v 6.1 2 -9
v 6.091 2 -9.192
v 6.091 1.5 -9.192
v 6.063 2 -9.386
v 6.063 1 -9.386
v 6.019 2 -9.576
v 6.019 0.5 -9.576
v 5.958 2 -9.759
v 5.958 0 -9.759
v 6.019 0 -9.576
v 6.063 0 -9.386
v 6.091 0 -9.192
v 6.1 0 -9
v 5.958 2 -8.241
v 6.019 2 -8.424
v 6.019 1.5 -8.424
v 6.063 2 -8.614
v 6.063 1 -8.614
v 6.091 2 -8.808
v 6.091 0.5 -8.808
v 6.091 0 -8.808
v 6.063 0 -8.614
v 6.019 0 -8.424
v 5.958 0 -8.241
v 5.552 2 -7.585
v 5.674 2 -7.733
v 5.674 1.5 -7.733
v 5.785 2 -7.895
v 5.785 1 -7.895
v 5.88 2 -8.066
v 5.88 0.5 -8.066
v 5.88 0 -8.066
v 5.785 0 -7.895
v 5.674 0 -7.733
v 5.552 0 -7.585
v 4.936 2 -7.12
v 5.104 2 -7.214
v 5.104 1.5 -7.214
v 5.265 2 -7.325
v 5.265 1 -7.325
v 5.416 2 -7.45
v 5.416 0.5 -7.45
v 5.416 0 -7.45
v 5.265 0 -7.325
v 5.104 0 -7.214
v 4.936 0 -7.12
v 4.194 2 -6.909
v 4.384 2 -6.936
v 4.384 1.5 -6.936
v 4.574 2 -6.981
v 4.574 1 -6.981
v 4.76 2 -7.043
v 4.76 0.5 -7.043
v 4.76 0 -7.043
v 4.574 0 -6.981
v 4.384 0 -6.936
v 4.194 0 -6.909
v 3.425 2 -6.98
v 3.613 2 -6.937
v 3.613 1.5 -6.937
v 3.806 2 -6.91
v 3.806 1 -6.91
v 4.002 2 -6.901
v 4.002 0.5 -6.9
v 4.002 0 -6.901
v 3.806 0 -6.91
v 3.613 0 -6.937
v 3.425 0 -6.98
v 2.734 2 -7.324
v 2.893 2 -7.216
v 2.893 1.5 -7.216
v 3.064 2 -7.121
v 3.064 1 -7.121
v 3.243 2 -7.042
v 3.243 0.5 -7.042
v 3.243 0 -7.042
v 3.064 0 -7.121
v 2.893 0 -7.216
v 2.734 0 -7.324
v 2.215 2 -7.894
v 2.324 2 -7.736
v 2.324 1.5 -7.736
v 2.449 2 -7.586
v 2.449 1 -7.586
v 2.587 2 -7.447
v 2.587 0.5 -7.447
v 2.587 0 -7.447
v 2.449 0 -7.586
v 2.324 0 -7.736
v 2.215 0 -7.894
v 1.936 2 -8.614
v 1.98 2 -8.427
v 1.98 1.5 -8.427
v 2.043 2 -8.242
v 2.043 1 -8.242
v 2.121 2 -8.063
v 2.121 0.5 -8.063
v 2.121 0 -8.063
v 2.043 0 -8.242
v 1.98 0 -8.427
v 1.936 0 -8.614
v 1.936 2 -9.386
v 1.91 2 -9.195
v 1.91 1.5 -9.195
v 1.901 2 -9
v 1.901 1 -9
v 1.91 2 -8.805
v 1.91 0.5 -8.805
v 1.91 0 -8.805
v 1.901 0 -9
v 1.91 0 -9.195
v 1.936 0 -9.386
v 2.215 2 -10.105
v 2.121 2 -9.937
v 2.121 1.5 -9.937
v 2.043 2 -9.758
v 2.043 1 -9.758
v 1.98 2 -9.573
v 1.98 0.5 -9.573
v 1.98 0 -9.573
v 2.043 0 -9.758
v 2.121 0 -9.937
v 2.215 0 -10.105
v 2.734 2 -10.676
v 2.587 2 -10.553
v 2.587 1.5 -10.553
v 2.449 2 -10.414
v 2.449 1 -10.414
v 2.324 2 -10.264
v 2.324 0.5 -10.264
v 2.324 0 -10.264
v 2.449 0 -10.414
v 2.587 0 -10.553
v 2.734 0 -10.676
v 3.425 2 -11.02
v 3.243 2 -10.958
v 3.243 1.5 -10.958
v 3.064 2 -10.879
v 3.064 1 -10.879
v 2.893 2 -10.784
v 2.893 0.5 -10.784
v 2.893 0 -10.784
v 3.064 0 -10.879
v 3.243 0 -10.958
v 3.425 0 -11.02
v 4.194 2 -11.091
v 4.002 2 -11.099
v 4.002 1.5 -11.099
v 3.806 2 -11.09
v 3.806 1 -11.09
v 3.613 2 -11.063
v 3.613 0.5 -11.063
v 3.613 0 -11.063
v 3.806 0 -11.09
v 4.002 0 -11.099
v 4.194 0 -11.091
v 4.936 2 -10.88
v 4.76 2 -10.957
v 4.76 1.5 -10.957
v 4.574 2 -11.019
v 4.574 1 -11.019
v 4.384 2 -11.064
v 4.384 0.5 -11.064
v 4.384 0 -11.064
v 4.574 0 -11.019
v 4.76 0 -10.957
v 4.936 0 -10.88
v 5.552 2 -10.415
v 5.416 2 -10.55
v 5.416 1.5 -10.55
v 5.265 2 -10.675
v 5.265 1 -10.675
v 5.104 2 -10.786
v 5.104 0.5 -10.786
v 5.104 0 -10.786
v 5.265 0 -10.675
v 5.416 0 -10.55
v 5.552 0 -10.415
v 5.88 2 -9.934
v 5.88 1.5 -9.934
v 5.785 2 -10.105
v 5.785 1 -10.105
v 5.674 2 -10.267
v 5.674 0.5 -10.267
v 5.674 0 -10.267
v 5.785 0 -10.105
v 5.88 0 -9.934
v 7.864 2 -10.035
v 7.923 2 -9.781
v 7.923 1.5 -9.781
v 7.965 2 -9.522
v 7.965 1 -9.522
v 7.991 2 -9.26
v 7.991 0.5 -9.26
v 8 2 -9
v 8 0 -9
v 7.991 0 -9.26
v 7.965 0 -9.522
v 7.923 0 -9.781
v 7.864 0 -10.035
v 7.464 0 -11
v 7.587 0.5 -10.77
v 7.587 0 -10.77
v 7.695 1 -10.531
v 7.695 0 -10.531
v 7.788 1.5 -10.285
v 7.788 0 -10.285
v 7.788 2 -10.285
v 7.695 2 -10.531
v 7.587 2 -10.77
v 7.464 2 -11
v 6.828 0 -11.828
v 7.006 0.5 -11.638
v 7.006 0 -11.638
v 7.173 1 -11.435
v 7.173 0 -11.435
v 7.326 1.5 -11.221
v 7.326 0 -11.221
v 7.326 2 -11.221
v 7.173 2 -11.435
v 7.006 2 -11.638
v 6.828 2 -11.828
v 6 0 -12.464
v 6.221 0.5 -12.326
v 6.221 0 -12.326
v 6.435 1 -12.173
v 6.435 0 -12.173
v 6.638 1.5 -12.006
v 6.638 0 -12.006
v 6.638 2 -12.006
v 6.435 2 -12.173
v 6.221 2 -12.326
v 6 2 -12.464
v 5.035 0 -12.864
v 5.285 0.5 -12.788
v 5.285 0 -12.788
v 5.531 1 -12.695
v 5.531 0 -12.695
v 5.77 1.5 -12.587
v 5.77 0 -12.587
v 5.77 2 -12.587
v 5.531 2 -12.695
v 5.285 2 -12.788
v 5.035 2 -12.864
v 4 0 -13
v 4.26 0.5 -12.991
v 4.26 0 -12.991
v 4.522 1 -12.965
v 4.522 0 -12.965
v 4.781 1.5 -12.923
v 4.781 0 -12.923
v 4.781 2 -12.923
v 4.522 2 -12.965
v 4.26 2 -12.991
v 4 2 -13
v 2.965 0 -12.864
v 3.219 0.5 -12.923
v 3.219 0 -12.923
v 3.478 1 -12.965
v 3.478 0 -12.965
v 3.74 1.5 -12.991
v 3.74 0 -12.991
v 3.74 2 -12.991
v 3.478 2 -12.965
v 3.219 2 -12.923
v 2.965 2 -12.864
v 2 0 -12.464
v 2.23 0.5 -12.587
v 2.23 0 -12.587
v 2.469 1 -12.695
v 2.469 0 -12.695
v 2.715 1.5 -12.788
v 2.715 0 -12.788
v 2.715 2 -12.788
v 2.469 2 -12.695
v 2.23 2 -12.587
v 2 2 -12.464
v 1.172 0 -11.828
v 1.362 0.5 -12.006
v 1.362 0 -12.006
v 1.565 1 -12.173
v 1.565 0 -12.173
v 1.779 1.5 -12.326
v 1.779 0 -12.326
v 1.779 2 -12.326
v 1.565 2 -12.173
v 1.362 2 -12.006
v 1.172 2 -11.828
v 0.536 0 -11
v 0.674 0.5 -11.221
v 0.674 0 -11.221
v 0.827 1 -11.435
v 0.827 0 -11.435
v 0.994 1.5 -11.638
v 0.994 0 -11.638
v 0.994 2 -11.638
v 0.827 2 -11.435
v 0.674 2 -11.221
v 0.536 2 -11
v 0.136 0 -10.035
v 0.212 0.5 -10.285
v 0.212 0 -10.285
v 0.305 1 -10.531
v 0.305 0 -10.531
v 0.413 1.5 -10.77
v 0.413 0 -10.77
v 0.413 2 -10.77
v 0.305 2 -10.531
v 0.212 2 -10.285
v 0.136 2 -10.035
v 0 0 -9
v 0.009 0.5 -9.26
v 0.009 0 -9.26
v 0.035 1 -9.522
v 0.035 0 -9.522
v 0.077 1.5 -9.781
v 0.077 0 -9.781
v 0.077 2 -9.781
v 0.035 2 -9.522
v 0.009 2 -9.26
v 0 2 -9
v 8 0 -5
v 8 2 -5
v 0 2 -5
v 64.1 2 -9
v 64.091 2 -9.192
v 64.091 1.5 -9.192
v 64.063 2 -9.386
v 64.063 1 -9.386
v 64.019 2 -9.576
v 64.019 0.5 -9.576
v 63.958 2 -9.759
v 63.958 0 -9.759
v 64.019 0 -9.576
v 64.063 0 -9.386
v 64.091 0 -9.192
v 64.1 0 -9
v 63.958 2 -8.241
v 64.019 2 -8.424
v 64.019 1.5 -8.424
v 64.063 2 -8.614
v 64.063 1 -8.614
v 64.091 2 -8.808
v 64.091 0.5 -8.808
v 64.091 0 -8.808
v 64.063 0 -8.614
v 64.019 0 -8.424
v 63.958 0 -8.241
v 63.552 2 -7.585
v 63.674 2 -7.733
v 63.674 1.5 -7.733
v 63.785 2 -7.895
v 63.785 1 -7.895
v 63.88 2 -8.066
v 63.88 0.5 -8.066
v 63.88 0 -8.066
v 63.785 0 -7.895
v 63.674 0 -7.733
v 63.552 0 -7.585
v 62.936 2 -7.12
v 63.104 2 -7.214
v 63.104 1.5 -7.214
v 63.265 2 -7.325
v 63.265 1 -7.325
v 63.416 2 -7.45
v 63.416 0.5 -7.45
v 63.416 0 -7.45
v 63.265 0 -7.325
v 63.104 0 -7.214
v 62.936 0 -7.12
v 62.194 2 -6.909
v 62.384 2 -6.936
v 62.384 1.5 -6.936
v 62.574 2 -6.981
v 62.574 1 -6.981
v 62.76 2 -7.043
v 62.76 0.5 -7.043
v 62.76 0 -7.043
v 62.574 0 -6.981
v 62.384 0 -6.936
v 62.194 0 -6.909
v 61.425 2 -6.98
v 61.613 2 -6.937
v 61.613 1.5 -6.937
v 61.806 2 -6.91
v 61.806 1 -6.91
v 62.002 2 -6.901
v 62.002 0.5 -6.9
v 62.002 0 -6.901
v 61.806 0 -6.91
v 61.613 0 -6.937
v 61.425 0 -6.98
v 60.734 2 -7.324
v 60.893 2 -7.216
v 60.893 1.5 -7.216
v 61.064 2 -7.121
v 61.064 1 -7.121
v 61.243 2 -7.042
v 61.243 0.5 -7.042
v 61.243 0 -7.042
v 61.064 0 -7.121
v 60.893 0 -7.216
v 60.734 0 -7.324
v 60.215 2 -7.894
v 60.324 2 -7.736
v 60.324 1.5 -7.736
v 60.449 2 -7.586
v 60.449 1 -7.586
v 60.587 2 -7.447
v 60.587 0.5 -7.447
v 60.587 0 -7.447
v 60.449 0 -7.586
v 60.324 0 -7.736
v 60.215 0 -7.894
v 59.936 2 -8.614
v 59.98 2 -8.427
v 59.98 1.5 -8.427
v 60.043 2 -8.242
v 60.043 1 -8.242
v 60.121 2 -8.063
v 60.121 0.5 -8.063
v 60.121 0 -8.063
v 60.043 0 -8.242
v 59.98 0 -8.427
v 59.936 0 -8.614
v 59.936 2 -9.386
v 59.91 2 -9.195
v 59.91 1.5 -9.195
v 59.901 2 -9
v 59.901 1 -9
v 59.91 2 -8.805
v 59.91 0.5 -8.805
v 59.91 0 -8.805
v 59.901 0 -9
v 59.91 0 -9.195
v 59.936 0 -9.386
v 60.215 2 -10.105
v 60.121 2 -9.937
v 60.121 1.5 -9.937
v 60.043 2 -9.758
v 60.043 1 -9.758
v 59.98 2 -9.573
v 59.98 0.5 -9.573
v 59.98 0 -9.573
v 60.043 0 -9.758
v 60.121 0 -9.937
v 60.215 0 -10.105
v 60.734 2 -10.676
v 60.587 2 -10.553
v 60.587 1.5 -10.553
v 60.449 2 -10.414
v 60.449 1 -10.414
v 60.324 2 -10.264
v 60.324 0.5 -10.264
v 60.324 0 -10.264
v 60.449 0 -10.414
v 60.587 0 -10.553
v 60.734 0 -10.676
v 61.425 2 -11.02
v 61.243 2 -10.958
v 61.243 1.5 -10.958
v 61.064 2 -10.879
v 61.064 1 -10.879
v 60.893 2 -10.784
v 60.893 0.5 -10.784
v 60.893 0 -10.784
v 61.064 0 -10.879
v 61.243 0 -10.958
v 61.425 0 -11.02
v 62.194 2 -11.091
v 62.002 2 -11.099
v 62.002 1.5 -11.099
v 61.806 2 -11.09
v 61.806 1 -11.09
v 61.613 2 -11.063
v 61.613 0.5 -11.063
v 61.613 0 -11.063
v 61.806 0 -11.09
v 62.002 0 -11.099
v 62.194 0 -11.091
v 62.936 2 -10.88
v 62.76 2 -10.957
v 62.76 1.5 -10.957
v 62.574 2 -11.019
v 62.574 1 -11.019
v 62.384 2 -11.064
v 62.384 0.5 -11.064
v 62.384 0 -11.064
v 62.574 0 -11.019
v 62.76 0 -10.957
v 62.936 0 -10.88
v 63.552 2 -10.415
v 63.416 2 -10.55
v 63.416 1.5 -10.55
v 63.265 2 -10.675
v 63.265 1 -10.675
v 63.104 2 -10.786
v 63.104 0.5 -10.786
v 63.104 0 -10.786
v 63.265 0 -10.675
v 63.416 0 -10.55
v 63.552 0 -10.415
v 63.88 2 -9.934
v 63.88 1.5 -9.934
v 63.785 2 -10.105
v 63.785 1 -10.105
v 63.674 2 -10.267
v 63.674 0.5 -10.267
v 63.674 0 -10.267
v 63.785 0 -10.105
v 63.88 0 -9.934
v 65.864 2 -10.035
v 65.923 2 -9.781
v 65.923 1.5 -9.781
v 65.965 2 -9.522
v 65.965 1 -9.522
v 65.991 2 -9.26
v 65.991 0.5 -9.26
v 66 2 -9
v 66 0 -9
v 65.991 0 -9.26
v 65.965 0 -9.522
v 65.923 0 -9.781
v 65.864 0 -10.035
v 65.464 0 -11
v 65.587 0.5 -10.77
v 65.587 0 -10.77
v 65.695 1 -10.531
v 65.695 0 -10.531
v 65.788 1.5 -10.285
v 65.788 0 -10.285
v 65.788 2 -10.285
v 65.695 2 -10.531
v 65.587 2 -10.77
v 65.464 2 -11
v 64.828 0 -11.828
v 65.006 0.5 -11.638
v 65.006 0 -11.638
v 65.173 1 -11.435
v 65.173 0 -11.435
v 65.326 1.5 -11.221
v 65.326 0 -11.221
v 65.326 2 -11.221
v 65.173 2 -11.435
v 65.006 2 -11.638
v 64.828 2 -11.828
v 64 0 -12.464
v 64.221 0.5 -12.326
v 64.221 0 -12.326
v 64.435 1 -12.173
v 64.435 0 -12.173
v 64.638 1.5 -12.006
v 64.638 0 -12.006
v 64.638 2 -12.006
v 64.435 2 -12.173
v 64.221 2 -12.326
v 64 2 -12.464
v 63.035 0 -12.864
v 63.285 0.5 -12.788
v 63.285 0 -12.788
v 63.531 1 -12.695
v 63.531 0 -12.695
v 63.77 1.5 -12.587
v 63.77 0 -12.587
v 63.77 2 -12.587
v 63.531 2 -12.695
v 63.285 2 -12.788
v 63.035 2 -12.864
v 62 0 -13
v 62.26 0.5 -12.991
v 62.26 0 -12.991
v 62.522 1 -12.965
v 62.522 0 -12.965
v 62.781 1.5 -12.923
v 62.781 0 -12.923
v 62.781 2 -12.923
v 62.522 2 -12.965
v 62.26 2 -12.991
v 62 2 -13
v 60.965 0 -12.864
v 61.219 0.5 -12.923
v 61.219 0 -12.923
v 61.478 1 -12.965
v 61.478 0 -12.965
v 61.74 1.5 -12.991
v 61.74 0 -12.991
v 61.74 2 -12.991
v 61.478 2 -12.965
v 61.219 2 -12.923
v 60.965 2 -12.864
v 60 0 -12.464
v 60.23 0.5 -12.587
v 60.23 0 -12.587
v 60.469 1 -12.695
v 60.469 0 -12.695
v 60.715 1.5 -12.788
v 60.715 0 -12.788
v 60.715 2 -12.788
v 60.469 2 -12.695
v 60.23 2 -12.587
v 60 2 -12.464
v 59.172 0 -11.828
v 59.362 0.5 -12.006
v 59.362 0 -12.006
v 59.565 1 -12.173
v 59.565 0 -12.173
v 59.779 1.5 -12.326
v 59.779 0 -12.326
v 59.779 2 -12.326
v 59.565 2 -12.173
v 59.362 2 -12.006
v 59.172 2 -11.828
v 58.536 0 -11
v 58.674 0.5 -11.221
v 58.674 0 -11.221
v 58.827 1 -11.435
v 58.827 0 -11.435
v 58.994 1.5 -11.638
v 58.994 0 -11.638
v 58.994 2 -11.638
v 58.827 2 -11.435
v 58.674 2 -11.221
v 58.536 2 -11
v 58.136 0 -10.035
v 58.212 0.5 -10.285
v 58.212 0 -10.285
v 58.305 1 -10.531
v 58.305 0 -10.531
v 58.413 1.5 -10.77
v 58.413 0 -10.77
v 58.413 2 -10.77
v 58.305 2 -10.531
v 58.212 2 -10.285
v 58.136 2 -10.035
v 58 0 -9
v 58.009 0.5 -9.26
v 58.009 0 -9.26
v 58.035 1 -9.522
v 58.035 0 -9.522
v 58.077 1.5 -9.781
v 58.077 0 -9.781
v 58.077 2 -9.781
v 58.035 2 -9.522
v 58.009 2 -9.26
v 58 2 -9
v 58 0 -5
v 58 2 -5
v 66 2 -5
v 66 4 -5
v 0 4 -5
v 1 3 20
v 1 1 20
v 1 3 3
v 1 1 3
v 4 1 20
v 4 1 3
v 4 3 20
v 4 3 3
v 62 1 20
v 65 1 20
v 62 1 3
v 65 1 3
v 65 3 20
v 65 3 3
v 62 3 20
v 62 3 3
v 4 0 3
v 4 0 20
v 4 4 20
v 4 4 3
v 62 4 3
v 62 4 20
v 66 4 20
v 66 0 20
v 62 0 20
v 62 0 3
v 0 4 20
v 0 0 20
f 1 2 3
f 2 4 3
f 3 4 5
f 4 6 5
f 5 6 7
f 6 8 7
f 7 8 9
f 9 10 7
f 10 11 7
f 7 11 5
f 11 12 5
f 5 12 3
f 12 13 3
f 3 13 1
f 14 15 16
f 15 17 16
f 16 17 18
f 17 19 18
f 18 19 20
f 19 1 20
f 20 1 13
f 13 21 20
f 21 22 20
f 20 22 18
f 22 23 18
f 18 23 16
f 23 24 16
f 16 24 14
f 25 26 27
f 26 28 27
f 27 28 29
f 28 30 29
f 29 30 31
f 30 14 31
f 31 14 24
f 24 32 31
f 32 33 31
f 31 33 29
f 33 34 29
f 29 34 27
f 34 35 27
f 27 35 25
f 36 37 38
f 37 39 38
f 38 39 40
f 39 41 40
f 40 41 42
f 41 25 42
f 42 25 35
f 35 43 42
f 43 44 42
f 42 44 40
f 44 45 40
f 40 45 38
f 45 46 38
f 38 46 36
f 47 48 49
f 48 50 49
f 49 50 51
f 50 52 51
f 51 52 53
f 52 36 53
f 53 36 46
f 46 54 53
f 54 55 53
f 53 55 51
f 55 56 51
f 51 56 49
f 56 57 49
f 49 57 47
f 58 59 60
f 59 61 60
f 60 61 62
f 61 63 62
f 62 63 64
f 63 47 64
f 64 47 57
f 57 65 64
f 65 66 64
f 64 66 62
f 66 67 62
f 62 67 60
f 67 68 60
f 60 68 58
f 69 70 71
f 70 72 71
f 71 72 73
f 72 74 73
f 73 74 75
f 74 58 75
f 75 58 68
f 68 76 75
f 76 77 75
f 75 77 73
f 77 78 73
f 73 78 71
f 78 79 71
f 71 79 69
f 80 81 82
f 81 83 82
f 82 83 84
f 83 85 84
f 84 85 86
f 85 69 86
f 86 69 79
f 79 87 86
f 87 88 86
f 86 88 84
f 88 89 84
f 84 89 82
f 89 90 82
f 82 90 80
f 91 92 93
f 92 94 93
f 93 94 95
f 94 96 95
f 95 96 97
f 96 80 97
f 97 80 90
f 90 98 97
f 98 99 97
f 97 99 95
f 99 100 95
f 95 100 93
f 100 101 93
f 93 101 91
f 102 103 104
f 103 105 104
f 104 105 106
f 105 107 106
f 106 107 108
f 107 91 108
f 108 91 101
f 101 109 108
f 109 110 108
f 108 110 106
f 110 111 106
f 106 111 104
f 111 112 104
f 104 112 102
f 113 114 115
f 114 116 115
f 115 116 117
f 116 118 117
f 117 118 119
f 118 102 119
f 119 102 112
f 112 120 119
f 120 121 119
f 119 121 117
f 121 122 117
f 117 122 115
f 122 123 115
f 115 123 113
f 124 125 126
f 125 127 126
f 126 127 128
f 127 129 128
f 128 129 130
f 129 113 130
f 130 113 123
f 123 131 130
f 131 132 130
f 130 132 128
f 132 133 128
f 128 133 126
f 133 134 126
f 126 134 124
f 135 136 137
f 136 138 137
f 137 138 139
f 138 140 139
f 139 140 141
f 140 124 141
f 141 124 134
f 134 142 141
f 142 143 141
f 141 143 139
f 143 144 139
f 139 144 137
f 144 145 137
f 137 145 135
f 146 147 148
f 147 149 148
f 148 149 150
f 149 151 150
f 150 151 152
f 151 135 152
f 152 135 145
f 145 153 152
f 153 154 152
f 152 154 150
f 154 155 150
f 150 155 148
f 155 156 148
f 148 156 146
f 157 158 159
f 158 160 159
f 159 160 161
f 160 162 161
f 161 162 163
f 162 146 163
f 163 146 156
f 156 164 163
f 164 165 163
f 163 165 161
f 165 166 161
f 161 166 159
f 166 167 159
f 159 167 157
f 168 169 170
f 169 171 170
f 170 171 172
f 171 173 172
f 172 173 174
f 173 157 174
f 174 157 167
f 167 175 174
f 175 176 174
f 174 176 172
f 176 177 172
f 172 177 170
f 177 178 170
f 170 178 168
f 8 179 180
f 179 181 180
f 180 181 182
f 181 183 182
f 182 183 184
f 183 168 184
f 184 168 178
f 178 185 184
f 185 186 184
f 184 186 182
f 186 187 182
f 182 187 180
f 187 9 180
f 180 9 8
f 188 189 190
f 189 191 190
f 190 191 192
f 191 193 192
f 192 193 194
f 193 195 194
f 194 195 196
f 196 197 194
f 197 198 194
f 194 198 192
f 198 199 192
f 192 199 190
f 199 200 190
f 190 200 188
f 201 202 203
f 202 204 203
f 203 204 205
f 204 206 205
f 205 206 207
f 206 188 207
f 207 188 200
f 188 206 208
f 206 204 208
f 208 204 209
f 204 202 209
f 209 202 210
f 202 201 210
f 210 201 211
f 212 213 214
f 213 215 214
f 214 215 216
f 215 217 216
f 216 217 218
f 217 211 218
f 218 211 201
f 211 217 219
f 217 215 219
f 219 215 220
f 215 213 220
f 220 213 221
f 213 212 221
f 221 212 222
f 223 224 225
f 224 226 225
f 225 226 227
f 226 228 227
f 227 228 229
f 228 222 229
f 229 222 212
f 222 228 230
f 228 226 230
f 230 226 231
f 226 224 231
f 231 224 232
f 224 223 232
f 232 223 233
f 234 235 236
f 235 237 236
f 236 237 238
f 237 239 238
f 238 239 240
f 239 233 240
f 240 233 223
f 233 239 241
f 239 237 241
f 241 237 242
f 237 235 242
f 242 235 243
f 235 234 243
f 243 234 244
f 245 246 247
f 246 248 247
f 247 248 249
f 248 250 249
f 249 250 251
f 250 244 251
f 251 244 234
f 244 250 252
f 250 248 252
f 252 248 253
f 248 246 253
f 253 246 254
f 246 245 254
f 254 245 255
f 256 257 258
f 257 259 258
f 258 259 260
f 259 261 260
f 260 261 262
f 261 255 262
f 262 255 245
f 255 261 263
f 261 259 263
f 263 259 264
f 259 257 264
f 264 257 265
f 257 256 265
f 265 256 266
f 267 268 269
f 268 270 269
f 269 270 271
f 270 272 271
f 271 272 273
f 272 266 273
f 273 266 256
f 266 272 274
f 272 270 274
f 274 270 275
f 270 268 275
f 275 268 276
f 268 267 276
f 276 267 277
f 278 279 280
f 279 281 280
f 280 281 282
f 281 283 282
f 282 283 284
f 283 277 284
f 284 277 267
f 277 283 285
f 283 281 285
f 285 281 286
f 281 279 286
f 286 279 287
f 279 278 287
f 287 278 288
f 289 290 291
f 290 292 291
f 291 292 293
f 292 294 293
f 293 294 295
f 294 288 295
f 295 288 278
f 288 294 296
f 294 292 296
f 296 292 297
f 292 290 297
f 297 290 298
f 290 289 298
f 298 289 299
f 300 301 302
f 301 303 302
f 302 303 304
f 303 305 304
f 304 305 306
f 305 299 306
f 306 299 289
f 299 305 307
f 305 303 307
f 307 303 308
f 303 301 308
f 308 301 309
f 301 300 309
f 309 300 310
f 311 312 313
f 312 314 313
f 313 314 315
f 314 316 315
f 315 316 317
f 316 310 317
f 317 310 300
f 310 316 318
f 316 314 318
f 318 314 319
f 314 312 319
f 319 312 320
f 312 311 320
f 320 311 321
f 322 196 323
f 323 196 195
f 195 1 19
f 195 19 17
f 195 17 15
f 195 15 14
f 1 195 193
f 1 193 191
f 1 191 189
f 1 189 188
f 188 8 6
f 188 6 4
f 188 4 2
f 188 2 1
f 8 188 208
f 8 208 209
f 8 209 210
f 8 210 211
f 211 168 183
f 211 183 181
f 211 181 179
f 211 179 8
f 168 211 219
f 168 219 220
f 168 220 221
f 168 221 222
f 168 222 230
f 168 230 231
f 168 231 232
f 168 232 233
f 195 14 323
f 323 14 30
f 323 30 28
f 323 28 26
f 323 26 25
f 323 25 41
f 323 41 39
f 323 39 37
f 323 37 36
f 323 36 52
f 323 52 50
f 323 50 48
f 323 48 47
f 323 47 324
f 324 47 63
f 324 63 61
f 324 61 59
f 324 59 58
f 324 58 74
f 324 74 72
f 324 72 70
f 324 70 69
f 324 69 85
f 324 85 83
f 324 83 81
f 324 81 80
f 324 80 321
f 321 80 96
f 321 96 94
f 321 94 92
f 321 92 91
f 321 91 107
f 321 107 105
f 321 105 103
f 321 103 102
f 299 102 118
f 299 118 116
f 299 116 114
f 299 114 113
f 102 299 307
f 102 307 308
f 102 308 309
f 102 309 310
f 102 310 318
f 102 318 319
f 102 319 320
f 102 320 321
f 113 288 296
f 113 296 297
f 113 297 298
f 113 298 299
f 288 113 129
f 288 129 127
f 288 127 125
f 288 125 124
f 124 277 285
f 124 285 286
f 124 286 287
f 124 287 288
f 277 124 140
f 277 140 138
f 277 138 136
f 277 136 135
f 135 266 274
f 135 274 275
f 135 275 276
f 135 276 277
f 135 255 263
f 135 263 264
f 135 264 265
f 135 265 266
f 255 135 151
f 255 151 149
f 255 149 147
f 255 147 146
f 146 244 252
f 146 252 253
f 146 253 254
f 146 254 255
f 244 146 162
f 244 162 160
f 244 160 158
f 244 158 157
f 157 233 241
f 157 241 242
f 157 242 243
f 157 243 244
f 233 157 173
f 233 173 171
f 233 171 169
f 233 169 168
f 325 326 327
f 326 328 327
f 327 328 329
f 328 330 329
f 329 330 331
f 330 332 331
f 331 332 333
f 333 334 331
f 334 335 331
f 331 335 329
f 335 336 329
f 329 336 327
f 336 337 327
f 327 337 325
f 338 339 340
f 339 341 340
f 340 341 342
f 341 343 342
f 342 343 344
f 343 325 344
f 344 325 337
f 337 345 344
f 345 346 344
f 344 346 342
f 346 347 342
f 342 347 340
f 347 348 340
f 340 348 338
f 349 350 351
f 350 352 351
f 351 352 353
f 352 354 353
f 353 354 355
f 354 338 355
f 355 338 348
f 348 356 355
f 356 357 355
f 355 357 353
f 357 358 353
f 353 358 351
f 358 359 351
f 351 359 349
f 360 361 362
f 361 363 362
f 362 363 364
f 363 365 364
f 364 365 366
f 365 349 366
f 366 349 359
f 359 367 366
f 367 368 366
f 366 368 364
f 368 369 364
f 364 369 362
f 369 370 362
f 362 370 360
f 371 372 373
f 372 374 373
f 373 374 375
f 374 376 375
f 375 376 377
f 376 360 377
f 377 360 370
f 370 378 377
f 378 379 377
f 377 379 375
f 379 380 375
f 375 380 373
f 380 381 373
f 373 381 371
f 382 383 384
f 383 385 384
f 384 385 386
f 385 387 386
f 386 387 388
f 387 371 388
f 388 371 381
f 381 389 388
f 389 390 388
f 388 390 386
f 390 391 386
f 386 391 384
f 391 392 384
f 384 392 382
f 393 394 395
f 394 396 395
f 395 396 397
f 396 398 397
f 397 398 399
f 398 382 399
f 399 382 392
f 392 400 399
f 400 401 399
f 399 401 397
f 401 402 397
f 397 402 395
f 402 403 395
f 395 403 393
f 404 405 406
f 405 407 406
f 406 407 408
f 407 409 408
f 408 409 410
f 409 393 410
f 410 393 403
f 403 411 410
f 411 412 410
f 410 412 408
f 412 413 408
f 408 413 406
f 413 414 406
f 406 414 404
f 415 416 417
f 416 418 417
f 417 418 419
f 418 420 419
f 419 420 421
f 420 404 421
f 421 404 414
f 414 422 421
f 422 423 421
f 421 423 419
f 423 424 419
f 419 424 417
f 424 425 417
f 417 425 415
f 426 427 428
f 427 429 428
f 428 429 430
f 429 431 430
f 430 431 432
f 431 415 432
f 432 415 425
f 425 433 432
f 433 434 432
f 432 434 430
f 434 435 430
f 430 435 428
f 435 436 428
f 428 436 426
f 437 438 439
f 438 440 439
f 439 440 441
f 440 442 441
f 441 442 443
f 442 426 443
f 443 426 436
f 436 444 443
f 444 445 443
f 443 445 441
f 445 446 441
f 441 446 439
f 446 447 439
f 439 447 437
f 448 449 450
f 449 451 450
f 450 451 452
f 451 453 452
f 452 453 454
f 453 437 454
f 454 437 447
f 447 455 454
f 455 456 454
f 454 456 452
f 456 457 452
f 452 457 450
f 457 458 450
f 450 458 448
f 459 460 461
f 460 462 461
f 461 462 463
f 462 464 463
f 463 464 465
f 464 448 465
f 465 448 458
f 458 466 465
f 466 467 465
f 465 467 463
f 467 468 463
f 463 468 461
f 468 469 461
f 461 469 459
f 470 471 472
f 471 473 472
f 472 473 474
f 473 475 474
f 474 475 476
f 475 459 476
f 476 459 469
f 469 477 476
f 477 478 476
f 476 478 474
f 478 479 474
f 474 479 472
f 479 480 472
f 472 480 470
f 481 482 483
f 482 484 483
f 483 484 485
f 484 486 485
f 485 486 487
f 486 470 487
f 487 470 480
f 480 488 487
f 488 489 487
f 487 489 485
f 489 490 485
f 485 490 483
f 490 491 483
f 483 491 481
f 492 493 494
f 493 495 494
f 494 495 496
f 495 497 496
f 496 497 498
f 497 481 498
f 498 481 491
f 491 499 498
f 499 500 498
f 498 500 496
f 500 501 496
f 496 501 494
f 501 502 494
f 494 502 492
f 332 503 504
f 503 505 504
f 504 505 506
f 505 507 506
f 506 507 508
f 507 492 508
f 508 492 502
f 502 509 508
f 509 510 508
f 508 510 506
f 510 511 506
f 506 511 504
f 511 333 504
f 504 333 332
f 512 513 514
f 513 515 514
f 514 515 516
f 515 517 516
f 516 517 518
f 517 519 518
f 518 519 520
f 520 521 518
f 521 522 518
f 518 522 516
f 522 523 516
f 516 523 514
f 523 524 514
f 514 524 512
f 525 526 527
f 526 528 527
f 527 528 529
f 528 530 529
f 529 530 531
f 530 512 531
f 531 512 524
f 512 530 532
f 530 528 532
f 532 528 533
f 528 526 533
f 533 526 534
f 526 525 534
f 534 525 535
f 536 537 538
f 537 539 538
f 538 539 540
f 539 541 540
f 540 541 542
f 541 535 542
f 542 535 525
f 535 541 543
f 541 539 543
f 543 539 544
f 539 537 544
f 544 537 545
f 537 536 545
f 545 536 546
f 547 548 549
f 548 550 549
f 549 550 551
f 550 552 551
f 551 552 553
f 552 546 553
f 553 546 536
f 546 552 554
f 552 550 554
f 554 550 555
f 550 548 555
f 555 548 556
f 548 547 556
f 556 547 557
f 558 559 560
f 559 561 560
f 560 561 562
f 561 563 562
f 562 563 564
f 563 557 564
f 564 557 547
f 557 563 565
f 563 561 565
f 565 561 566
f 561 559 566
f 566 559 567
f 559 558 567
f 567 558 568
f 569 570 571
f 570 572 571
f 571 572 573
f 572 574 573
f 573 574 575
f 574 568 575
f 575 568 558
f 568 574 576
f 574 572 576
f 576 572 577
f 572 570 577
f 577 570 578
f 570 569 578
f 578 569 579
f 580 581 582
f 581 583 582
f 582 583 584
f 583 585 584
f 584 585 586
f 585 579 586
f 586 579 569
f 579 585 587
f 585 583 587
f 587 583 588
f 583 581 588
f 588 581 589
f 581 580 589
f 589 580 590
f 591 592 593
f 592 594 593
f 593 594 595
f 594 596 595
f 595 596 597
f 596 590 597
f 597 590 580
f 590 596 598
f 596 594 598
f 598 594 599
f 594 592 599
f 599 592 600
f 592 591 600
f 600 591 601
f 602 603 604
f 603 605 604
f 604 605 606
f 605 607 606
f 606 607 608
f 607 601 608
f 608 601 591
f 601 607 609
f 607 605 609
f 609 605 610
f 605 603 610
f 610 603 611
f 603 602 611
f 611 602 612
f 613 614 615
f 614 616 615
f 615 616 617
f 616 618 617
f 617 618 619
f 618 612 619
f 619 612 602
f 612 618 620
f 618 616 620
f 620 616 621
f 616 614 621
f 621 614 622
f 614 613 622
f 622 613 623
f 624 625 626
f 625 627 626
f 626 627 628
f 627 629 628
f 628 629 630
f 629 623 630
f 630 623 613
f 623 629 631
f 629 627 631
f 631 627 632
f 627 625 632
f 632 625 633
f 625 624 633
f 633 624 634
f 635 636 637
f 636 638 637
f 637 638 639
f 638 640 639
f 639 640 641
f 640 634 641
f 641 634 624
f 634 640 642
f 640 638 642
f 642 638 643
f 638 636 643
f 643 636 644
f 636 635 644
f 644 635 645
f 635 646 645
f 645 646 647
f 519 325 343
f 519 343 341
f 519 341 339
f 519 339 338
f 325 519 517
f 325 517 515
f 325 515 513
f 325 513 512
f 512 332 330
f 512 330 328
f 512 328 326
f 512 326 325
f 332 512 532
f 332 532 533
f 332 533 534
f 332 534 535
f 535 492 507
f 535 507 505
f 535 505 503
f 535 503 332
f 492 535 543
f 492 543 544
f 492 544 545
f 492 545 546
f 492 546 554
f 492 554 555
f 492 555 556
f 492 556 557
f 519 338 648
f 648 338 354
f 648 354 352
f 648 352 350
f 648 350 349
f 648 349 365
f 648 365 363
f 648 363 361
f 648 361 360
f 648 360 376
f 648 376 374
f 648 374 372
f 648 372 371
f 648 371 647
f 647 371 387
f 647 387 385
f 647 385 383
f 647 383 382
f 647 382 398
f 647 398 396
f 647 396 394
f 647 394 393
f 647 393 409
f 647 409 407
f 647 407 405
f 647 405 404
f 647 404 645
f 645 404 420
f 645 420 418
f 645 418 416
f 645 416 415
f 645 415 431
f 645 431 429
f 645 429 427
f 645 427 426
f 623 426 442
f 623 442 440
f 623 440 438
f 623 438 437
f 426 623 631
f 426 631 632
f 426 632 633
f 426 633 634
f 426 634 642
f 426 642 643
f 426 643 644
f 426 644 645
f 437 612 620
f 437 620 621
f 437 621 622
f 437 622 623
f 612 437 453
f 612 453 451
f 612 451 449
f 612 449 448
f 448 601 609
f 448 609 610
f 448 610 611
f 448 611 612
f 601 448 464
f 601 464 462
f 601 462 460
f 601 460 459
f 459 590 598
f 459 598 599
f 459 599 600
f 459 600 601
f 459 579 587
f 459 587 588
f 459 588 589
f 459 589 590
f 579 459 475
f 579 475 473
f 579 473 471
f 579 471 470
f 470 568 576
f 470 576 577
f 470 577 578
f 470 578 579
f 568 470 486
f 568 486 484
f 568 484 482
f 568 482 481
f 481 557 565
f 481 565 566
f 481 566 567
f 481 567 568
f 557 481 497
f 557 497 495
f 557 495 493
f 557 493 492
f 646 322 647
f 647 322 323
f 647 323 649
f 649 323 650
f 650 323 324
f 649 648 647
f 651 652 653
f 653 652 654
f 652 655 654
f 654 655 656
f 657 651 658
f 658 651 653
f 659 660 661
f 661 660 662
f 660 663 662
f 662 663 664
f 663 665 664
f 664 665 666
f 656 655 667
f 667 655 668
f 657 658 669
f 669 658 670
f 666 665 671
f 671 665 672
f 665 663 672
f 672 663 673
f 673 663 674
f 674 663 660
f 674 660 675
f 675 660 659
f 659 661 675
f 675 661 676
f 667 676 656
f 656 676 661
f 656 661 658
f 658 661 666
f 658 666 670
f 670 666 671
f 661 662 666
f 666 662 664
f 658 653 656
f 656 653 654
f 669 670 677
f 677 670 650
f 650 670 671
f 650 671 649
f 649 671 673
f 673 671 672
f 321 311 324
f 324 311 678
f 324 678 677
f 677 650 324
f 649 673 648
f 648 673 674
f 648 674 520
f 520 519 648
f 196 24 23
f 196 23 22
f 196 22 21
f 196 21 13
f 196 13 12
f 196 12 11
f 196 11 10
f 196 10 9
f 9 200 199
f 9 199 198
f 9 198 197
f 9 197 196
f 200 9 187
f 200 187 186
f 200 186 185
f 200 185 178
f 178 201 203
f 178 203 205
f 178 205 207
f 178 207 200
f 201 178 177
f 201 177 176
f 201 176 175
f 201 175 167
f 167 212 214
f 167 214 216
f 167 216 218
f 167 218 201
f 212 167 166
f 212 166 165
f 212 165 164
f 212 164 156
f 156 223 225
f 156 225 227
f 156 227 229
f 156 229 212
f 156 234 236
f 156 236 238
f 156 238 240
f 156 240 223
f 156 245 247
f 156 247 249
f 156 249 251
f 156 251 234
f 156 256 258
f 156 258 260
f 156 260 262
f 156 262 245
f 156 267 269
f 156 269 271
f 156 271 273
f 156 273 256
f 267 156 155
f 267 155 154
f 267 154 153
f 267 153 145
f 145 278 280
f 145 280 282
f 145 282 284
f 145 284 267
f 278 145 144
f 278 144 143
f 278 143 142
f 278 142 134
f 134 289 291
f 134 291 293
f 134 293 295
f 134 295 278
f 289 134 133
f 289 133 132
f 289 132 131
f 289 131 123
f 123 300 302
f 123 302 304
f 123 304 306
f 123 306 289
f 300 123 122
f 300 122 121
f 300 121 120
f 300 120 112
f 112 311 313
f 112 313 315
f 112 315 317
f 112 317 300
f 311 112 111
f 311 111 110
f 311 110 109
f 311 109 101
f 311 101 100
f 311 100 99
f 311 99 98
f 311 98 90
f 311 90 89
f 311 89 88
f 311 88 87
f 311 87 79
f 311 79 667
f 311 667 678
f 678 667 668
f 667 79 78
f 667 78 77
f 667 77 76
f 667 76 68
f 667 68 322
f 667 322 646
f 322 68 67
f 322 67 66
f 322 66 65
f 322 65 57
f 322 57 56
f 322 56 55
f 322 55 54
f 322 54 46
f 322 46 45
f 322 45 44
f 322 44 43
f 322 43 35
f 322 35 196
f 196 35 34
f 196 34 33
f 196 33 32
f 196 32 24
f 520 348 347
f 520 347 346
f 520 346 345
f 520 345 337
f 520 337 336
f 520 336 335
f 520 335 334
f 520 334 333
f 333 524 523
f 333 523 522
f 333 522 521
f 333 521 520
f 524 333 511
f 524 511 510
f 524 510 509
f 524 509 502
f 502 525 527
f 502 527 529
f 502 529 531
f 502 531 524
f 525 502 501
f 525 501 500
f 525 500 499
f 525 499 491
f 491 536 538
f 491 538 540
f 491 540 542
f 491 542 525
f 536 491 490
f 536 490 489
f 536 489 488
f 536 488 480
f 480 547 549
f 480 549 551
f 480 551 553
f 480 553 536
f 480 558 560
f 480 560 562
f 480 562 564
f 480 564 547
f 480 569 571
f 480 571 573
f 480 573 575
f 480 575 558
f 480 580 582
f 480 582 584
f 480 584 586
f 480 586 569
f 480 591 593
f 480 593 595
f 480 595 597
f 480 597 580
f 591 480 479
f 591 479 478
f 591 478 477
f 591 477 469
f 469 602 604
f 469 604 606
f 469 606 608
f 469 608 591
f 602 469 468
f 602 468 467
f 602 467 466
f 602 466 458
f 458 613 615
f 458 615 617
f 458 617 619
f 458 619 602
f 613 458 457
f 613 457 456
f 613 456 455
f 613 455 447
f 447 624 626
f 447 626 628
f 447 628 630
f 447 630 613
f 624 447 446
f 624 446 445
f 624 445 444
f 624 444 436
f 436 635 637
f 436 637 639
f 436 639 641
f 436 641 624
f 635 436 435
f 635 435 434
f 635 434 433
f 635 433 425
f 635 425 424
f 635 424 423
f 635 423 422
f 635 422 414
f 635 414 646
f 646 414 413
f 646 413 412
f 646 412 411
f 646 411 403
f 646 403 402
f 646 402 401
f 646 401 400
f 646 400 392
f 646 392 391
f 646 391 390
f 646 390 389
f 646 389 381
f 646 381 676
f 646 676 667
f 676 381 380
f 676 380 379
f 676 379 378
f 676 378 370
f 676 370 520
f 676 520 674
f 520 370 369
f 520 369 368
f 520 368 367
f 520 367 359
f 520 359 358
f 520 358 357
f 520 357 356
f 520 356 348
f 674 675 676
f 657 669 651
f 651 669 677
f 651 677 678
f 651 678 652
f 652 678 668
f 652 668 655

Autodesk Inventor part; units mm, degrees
ref_plane "YZ Plane" through (0, 0, 0) normal (1, 0, 0) x (0, 1, 0)
ref_plane "XZ Plane" through (0, 0, 0) normal (0, 1, 0) x (-1, 0, 0)
sketch "Sketch1" plane through (0, 0, 0) normal (0, 0, 1) x (1, 0, 0)
  line L0 (0, 0) -> (66, 0)
  line L1 (66, 0) -> (66, 4)
  line L2 (66, 4) -> (0, 4)
  line L3 (0, 4) -> (0, 0)
  dimension "d0" = 66
  dimension "d1" = 4
extrude "Extrusion1" add sketch "Sketch1" along normal blind 20
sketch "Sketch2" plane through (0, 4, 0) normal (0, 1, 0) x (1, 0, 0)
  line L0 (0, -20) -> (66, -20) projected
  line L1 (4, -20) -> (62, -20)
  line L2 (62, -20) -> (62, -3)
  line L3 (62, -3) -> (4, -3)
  line L4 (4, -3) -> (4, -20)
  line L5 (0, 0) -> (0, -20) projected
  dimension "d4" = 58
  dimension "d5" = 17
  dimension "d6" = 4
extrude "Extrusion2" cut sketch "Sketch2" against normal blind 20
ref_plane "Work Plane1" through (0, 0, 20) normal (0, 0, 1) x (1, 0, 0)
sketch "Sketch3" plane through (0, 0, 20) normal (0, 0, 1) x (1, 0, 0)
  line L0 (4, 0) -> (4, 4) projected
  line L1 (4, 4) -> (0, 4) projected
  line L2 (0, 4) -> (0, 0) projected
  line L3 (0, 0) -> (4, 0) projected
  line L4 (62, 4) -> (62, 0) projected
  line L5 (62, 0) -> (66, 0) projected
  line L6 (66, 0) -> (66, 4) projected
  line L7 (66, 4) -> (62, 4) projected
  line L8 (4, 0) -> (1, 0)
  line L9 (4, 1) -> (4, 0)
  line L10 (1, 3) -> (4, 3)
  line L11 (4, 3) -> (4, 1)
  line L12 (4, 1) -> (1, 1)
  line L13 (1, 1) -> (1, 3)
  line L14 (62, 3) -> (65, 3)
  line L15 (65, 3) -> (65, 1)
  line L16 (65, 1) -> (62, 1)
  line L17 (62, 1) -> (62, 3)
  dimension "d30" = 3
  dimension "d31" = 2
  dimension "d32" = 1
  dimension "d33" = 4
  dimension "d34" = 3
  dimension "d35" = 2
  dimension "d36" = 1
  dimension "d37" = 4
extrude "Extrusion3" cut sketch "Sketch3" against normal blind 17 contours L12 L13 L10 L0 | L14 L15 L16 L4
sketch "Sketch4" plane through (0, 4, 0) normal (0, 1, 0) x (1, 0, 0)
  line L0 (0, 0) -> (66, 0)
  line L1 (60, 5) -> (10, 5)
  line L2 (0, 5) -> (0, 0)
  line L3 (60, 5) -> (66, 5)
  line L4 (60, 5) -> (0, 5)
  line L5 (4, -20) -> (4, -3) projected
  line L6 (4, -3) -> (62, -3) projected
  line L7 (62, -3) -> (62, -20) projected
  line L8 (66, -20) -> (62, -20) projected
  line L9 (66, 0) -> (66, -20) projected
  line L10 (66, 0) -> (0, 0) projected
  line L11 (0, 0) -> (0, -20) projected
  line L12 (4, -20) -> (0, -20) projected
  line L13 (66, 0) -> (66, 5)
  point P0 (66.0117, 5)
extrude "Extrusion5" add sketch "Sketch4" against normal blind 4 contours L2 L4 L1 L3 L13 L0
sketch "Sketch6" plane through (4, 0, 3) normal (0, -1, 0) x (1, 0, 0)
  circle A0 centre (58, -12) radius 2.1
  arc A1 (54, -12) -> (62, -12) centre (58, -12) ccw
  line L0 (54, -12) -> (54, -8)
  arc A2 (-4, -12) -> (4, -12) centre (0, -12) ccw
  circle A3 centre (0, -12) radius 2.1
  line L1 (4, -12) -> (4, -8)
  line L2 (-4, -12) -> (-4, -8)
  line L3 (62, -8) -> (62, 17) projected
  line L4 (62, -8) -> (-4, -8) projected
  line L5 (62, -8) -> (62, 17) projected
  line L6 (62, -8) -> (62, -12)
  line L7 (-4, 17) -> (-4, -8) projected
  dimension "d40" = 4.2
  dimension "d41" = 8
  dimension "d44" = 8
  dimension "d45" = 4.2
  dimension "d53" = 4
  dimension "d54" = 4
  dimension "d55" = 4
  dimension "d56" = 4
extrude "Extrusion6" add sketch "Sketch6" against normal blind 2
properties part number "Electronics-Wedge"
